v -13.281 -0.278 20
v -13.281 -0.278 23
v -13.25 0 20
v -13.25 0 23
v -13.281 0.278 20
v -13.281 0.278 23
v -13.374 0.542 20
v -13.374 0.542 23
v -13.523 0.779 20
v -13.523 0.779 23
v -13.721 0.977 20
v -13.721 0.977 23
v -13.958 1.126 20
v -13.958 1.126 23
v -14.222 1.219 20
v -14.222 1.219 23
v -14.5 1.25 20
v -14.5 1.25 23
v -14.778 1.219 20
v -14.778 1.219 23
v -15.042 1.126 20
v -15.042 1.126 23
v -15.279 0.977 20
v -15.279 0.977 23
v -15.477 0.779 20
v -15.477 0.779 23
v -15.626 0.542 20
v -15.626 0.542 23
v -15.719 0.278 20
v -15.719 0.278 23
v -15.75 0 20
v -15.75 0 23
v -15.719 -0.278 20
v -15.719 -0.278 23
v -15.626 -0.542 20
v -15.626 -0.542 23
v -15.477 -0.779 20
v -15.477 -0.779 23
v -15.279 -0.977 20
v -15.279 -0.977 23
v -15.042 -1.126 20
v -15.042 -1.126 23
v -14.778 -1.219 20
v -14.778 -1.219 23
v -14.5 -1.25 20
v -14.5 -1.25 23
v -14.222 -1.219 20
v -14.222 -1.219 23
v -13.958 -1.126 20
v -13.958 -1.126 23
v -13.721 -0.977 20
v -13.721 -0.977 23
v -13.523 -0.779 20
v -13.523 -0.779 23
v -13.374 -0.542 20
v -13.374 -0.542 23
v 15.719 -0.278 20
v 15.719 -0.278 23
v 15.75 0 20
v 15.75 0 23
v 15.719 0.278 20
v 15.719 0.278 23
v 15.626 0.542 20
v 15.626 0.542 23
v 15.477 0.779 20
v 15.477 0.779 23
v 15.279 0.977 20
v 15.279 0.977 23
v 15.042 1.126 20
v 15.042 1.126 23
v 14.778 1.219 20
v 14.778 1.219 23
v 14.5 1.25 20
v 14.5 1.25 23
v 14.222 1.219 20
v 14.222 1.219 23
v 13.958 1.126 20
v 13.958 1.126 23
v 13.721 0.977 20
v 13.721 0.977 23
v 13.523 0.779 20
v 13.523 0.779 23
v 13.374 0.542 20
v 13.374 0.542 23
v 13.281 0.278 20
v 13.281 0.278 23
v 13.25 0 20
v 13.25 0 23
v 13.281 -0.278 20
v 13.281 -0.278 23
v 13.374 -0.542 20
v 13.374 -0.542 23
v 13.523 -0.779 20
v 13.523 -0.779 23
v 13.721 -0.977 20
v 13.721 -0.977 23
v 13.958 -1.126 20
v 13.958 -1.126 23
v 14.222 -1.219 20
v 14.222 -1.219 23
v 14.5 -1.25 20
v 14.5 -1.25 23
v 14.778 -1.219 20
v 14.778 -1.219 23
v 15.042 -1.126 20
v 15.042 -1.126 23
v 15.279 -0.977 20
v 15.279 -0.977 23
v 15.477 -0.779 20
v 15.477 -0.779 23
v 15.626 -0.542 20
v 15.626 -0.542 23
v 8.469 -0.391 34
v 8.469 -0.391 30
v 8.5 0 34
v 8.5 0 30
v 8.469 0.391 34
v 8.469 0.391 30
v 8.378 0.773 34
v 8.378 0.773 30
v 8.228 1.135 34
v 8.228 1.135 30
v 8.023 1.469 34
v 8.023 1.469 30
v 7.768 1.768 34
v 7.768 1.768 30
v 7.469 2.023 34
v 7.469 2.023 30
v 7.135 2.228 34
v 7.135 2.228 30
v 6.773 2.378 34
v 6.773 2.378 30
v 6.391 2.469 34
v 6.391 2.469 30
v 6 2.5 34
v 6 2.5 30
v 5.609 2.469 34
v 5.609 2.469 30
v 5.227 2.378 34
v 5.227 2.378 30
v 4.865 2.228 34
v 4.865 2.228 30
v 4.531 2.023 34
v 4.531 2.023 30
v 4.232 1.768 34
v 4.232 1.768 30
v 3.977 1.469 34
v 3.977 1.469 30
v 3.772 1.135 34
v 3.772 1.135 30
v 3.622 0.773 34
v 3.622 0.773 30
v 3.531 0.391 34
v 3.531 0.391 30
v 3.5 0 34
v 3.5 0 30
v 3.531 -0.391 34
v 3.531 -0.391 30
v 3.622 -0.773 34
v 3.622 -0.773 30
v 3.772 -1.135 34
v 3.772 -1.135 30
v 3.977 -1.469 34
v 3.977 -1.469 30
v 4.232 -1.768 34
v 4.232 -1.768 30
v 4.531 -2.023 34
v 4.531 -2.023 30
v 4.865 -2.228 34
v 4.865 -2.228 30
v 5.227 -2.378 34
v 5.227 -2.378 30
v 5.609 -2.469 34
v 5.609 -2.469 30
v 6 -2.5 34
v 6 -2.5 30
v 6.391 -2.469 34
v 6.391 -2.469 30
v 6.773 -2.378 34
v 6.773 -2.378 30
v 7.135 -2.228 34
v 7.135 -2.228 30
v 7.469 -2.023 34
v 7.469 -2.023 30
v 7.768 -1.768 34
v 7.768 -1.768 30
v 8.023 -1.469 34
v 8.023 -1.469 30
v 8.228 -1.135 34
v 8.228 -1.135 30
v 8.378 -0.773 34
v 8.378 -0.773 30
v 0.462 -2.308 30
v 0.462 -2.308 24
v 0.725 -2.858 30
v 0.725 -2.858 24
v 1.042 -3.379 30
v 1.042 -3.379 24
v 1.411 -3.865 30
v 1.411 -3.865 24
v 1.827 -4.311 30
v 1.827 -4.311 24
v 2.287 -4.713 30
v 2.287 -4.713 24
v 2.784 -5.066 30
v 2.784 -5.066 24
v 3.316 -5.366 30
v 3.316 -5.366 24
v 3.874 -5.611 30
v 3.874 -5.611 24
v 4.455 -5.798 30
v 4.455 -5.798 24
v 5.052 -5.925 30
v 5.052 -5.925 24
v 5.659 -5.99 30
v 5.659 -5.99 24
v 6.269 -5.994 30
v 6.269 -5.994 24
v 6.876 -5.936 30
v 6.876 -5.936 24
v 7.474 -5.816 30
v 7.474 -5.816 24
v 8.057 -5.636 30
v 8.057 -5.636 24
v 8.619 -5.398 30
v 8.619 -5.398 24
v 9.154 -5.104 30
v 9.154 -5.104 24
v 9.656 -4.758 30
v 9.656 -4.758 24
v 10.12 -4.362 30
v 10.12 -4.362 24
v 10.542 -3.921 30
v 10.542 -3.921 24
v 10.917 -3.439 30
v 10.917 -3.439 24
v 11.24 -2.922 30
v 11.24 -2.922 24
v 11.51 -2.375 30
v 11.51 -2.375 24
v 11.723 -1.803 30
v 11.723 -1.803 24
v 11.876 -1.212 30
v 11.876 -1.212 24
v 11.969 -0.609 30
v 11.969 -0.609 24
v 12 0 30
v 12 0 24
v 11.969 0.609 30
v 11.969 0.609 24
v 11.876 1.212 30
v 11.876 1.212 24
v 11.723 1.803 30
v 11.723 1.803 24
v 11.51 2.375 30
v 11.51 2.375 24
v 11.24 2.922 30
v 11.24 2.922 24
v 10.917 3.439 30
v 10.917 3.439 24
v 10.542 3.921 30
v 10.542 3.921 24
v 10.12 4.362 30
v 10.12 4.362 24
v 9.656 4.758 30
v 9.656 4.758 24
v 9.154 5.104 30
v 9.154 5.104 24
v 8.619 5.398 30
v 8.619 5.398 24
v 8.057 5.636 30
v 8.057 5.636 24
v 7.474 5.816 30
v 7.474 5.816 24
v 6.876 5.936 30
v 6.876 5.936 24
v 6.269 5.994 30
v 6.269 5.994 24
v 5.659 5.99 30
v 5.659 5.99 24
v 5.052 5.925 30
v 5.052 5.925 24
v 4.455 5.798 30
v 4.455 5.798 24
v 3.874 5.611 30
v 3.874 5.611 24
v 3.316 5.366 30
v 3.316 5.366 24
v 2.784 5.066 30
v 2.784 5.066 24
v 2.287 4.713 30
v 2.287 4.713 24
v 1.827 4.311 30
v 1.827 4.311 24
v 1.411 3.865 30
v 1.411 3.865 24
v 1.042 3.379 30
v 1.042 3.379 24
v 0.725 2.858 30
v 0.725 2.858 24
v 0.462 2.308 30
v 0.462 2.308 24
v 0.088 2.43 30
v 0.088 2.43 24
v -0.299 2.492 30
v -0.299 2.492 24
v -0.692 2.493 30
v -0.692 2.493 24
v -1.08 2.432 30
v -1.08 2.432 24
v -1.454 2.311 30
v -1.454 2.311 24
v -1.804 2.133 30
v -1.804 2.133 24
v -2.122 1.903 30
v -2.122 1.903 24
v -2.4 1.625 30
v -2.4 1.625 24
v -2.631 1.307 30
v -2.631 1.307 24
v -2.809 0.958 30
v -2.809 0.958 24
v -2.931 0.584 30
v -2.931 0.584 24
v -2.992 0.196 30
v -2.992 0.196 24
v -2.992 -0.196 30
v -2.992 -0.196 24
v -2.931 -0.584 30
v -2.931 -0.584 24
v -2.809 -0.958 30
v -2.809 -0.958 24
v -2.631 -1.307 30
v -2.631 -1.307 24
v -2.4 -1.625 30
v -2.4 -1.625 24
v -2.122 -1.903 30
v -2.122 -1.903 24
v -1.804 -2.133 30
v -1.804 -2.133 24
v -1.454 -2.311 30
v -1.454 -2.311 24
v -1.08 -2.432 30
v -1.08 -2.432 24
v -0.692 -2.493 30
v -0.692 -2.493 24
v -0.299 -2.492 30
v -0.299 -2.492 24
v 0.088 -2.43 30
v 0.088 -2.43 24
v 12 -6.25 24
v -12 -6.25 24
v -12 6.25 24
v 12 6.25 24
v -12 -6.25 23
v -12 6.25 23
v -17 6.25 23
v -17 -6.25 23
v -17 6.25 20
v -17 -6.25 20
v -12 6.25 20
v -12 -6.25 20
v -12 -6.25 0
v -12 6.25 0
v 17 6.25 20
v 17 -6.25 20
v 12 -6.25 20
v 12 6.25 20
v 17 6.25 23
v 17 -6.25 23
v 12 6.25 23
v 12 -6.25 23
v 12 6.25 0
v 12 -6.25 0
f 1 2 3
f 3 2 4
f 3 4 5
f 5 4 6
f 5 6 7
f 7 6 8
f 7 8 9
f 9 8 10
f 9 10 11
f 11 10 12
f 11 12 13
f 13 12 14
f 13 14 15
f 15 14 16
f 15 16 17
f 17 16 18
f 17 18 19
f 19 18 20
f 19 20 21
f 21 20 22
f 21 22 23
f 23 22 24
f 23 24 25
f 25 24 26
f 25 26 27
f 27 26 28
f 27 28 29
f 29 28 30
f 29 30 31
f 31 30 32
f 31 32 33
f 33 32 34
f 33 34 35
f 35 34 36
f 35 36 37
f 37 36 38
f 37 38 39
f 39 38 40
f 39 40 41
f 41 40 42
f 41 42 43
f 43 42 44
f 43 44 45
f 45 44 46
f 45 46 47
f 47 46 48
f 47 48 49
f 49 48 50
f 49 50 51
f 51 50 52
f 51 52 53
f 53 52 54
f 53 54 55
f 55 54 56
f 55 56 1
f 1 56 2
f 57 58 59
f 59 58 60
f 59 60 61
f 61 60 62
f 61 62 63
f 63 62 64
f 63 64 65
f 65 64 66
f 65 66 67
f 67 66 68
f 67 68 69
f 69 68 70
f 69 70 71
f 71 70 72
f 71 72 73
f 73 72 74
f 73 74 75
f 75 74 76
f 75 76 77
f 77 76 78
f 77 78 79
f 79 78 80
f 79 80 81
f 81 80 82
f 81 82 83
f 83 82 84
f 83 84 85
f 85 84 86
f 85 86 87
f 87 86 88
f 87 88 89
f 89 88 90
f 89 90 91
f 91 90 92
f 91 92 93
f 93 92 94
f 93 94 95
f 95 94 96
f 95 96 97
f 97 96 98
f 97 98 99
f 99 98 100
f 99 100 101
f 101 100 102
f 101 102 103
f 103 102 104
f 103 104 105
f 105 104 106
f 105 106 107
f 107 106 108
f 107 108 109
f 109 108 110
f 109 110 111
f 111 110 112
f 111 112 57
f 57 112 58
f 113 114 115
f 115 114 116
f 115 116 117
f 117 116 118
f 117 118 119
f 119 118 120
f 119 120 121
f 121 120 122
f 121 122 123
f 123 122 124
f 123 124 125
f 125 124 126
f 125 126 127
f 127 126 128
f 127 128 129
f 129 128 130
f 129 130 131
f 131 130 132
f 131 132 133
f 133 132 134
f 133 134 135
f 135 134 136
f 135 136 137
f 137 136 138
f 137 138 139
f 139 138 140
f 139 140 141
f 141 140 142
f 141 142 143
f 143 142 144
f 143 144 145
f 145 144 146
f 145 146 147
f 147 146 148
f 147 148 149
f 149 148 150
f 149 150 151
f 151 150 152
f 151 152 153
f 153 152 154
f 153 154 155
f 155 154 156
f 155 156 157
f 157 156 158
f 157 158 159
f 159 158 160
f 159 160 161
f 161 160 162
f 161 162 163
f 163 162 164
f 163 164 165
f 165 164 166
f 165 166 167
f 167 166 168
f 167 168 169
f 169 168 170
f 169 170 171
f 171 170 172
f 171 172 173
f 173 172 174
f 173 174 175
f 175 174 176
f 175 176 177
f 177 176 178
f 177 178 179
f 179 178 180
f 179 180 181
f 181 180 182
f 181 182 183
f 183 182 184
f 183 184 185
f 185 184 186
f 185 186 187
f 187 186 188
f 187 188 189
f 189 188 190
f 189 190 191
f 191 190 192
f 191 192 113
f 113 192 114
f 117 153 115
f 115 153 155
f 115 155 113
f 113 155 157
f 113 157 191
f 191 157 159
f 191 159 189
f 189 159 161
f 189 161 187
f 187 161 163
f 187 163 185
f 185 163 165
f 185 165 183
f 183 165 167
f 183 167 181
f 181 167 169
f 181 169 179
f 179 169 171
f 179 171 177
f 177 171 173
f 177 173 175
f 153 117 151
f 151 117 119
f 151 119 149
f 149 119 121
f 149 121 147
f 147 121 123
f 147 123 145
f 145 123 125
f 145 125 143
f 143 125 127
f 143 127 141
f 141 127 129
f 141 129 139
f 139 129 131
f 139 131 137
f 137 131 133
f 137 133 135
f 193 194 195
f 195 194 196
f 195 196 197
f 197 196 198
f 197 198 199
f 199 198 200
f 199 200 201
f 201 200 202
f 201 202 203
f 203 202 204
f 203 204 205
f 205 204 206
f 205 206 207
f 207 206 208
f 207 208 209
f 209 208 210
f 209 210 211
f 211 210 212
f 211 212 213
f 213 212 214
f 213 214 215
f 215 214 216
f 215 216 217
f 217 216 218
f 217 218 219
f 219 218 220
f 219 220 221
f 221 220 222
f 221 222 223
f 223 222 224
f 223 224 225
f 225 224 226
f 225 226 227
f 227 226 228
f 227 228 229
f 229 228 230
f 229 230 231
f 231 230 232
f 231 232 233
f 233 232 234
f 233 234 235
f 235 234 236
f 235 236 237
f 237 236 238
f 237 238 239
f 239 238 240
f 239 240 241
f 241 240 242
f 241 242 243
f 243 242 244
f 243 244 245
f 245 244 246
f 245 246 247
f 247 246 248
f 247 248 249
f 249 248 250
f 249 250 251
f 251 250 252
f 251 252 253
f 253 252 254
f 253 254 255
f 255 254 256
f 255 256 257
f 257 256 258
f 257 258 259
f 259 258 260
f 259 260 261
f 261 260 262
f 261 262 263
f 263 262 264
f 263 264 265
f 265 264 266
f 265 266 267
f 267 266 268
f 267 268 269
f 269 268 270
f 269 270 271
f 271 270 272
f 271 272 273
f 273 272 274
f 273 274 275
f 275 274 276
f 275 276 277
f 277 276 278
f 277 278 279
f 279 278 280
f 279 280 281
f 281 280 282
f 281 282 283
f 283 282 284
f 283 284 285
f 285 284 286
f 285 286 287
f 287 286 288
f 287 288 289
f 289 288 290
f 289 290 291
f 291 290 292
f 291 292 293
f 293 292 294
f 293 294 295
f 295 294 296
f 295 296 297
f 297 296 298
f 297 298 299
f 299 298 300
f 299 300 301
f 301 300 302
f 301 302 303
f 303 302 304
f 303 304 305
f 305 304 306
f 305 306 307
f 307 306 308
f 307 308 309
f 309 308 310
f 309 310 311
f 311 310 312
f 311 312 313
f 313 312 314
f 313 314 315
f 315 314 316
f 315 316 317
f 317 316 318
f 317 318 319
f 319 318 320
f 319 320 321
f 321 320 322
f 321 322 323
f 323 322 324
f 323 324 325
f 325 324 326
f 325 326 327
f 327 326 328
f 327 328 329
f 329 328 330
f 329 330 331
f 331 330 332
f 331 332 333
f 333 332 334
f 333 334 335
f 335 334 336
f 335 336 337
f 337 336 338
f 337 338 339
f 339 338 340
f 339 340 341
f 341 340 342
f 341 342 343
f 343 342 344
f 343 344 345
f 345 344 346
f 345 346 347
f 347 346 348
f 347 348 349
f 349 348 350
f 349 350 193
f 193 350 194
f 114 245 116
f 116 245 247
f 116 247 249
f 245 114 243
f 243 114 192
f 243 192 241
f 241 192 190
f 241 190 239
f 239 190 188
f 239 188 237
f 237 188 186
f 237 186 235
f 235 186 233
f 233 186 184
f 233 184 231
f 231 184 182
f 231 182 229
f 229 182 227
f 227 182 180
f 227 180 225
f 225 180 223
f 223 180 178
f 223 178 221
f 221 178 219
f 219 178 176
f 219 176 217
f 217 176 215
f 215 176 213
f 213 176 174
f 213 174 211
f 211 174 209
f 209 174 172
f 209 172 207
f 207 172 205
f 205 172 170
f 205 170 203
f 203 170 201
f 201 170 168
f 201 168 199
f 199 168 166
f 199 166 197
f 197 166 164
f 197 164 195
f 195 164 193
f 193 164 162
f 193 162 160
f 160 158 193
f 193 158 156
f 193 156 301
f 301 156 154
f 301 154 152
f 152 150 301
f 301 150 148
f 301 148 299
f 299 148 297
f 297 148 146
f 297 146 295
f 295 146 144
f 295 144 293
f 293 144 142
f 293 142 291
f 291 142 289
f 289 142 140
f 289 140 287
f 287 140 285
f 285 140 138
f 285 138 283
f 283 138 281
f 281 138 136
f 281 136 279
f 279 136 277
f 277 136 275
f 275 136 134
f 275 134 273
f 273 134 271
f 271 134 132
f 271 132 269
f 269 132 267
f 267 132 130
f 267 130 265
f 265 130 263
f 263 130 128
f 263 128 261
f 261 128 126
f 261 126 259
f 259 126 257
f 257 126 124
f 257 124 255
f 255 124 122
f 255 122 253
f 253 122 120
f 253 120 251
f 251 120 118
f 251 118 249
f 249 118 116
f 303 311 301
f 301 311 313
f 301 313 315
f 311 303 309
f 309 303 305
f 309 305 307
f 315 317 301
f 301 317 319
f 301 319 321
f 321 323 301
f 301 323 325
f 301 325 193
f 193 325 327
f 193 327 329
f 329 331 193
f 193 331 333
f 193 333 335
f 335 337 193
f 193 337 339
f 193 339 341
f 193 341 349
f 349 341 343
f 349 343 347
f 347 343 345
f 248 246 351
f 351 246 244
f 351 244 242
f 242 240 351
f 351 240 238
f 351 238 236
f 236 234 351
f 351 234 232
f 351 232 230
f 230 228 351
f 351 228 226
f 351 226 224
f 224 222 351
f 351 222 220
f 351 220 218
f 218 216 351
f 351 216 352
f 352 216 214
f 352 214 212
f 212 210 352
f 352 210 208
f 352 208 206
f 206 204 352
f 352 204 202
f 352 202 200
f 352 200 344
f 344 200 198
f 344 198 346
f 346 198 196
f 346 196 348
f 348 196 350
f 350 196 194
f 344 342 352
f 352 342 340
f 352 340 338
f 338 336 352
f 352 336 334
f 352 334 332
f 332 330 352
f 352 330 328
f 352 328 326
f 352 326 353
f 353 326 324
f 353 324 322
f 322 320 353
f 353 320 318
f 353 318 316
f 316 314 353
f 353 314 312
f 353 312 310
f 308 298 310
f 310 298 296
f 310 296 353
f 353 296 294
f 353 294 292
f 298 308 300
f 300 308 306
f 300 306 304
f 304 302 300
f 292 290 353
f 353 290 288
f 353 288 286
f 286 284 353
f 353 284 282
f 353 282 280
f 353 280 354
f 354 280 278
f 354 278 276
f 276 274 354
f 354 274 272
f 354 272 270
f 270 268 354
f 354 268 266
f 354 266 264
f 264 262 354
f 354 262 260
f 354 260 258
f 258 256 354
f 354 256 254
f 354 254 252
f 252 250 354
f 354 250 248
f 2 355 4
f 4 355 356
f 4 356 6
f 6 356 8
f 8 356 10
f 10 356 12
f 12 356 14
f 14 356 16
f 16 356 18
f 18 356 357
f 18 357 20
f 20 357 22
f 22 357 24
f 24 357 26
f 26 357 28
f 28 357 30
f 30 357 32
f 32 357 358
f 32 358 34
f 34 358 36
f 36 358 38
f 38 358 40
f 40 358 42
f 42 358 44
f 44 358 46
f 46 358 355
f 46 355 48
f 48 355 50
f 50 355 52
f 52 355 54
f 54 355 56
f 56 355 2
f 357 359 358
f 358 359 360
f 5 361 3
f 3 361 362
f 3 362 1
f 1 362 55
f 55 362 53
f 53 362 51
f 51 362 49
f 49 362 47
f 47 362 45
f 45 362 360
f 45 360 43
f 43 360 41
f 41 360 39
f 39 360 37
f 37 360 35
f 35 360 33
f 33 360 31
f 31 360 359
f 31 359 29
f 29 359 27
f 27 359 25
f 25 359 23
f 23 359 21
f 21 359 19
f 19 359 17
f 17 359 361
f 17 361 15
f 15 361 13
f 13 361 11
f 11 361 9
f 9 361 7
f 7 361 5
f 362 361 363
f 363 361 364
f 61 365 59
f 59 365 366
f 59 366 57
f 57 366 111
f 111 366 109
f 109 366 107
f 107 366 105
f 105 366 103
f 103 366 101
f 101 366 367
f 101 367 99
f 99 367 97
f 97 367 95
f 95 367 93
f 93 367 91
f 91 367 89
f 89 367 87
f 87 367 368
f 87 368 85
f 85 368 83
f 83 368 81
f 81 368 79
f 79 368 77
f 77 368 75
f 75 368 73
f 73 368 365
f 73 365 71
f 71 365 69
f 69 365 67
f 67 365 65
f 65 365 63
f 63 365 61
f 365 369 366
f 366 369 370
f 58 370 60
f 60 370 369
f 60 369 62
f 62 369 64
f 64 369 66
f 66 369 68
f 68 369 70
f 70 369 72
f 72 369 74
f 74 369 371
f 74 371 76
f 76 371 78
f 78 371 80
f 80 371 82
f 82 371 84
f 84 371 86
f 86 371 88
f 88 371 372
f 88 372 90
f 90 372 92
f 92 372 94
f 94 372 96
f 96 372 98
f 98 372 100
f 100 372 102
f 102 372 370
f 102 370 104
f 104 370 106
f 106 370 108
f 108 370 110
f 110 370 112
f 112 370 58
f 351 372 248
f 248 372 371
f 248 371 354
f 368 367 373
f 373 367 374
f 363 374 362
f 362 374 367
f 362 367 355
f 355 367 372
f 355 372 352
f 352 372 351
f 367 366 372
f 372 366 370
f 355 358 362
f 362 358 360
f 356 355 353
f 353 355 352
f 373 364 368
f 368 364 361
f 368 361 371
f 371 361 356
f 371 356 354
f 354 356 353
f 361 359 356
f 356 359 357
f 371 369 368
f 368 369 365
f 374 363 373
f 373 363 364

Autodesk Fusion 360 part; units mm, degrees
sketch "Sketch1" plane through (0, 0, 0) normal (0, 0, 1) x (1, 0, 0)
  line L0 (12, 6.25) -> (-12, 6.25)
  line L1 (-12, 6.25) -> (-12, -6.25)
  line L2 (-12, -6.25) -> (12, -6.25)
  line L3 (12, -6.25) -> (12, 6.25)
  line L4 (12, 6.25) -> (-12, -6.25) construction
  line L5 (-12, 6.25) -> (12, -6.25) construction
  line L6 (12, 6.25) -> (17, 6.25)
  line L7 (17, 6.25) -> (17, -6.25)
  line L8 (12, -6.25) -> (17, -6.25)
  line L9 (-12, 6.25) -> (-17, 6.25)
  line L10 (-17, 6.25) -> (-17, -6.25)
  line L11 (-17, -6.25) -> (-12, -6.25)
  dimension "d1" = 24
  dimension "d2" = 12.5
  dimension "d3" = 5
  dimension "d4" = 5
extrude "Extrude1" add sketch "Sketch1" along normal blind 24 contours L0 L1 L2 L3
sketch "Sketch2" plane through (0, -6.25, 0) normal (0, -1, 0) x (1, 0, 0)
  line L0 (-12, 0) -> (12, 0)
  line L1 (12, 0) -> (12, 24)
  line L2 (12, 24) -> (-12, 24)
  line L3 (-12, 24) -> (-12, 0)
  line L4 (12, 24) -> (12, 23)
  line L5 (12, 23) -> (17, 23)
  line L6 (17, 23) -> (17, 20)
  line L7 (17, 20) -> (12, 20)
  line L8 (-12, 24) -> (-12, 23)
  line L9 (-12, 23) -> (-17, 23)
  line L10 (-17, 23) -> (-17, 20)
  line L11 (-17, 20) -> (-12, 20)
  dimension "d7" = 1
  dimension "d8" = 5
  dimension "d9" = 3
  dimension "d10" = 1
  dimension "d11" = 5
  dimension "d12" = 3
extrude "Extrude2" add sketch "Sketch2" against normal up to surface (12.5 mm away) contours L3 L9 L10 L11 | L1 L5 L6 L7
sketch "Sketch3" plane through (0, 0, 24) normal (0, 0, 1) x (-1, 0, 0)
  line L0 (-12, 6.25) -> (-12, -6.25)
  line L1 (-12, -6.25) -> (12, -6.25)
  line L2 (12, -6.25) -> (12, 6.25)
  line L3 (12, 6.25) -> (-12, 6.25)
  circle A0 centre (-6, 0) radius 6
  circle A1 centre (0.5, 0) radius 2.5
  dimension "d15" = 12
  dimension "d16" = 5
  dimension "d17" = 6.5
extrude "Extrude3" add sketch "Sketch3" along normal blind 6 contours A0 A1 | A0 A1 | A0 A1
sketch "Sketch4" plane through (0, 0, 30) normal (0, 0, 1) x (-1, 0, 0)
  arc A0 (-0.4615, -2.3077) -> (-0.4615, 2.3077) centre (0.5, 0) ccw
  arc A1 (-0.4615, 2.3077) -> (-0.4615, -2.3077) centre (-6, 0) ccw
  circle A2 centre (-6, 0) radius 2.5
  dimension "d20" = 5
extrude "Extrude4" add sketch "Sketch4" along normal blind 4 contours A2
sketch "Sketch5" plane through (0, 0, 23) normal (0, 0, 1) x (-1, 0, 0)
  line L0 (-17, -6.25) -> (-12, -6.25)
  line L1 (-12, -6.25) -> (-12, 6.25)
  line L2 (-12, 6.25) -> (-17, 6.25)
  line L3 (-17, 6.25) -> (-17, -6.25)
  circle A0 centre (-14.5, 0) radius 1.25
  dimension "d23" = 2.5
  dimension "d24" = 2.5
sketch "Sketch6" plane through (0, 0, 23) normal (0, 0, 1) x (-1, 0, 0)
  line L0 (12, -6.25) -> (17, -6.25)
  line L1 (17, -6.25) -> (17, 6.25)
  line L2 (17, 6.25) -> (12, 6.25)
  line L3 (12, 6.25) -> (12, -6.25)
  circle A0 centre (14.5, 0) radius 1.25
  dimension "d25" = 2.5
  dimension "d26" = 2.5
extrude "Extrude5" cut sketch "Sketch6" sketch "Sketch5" against normal blind 3 contours A0 of sketch 2 contours A0
